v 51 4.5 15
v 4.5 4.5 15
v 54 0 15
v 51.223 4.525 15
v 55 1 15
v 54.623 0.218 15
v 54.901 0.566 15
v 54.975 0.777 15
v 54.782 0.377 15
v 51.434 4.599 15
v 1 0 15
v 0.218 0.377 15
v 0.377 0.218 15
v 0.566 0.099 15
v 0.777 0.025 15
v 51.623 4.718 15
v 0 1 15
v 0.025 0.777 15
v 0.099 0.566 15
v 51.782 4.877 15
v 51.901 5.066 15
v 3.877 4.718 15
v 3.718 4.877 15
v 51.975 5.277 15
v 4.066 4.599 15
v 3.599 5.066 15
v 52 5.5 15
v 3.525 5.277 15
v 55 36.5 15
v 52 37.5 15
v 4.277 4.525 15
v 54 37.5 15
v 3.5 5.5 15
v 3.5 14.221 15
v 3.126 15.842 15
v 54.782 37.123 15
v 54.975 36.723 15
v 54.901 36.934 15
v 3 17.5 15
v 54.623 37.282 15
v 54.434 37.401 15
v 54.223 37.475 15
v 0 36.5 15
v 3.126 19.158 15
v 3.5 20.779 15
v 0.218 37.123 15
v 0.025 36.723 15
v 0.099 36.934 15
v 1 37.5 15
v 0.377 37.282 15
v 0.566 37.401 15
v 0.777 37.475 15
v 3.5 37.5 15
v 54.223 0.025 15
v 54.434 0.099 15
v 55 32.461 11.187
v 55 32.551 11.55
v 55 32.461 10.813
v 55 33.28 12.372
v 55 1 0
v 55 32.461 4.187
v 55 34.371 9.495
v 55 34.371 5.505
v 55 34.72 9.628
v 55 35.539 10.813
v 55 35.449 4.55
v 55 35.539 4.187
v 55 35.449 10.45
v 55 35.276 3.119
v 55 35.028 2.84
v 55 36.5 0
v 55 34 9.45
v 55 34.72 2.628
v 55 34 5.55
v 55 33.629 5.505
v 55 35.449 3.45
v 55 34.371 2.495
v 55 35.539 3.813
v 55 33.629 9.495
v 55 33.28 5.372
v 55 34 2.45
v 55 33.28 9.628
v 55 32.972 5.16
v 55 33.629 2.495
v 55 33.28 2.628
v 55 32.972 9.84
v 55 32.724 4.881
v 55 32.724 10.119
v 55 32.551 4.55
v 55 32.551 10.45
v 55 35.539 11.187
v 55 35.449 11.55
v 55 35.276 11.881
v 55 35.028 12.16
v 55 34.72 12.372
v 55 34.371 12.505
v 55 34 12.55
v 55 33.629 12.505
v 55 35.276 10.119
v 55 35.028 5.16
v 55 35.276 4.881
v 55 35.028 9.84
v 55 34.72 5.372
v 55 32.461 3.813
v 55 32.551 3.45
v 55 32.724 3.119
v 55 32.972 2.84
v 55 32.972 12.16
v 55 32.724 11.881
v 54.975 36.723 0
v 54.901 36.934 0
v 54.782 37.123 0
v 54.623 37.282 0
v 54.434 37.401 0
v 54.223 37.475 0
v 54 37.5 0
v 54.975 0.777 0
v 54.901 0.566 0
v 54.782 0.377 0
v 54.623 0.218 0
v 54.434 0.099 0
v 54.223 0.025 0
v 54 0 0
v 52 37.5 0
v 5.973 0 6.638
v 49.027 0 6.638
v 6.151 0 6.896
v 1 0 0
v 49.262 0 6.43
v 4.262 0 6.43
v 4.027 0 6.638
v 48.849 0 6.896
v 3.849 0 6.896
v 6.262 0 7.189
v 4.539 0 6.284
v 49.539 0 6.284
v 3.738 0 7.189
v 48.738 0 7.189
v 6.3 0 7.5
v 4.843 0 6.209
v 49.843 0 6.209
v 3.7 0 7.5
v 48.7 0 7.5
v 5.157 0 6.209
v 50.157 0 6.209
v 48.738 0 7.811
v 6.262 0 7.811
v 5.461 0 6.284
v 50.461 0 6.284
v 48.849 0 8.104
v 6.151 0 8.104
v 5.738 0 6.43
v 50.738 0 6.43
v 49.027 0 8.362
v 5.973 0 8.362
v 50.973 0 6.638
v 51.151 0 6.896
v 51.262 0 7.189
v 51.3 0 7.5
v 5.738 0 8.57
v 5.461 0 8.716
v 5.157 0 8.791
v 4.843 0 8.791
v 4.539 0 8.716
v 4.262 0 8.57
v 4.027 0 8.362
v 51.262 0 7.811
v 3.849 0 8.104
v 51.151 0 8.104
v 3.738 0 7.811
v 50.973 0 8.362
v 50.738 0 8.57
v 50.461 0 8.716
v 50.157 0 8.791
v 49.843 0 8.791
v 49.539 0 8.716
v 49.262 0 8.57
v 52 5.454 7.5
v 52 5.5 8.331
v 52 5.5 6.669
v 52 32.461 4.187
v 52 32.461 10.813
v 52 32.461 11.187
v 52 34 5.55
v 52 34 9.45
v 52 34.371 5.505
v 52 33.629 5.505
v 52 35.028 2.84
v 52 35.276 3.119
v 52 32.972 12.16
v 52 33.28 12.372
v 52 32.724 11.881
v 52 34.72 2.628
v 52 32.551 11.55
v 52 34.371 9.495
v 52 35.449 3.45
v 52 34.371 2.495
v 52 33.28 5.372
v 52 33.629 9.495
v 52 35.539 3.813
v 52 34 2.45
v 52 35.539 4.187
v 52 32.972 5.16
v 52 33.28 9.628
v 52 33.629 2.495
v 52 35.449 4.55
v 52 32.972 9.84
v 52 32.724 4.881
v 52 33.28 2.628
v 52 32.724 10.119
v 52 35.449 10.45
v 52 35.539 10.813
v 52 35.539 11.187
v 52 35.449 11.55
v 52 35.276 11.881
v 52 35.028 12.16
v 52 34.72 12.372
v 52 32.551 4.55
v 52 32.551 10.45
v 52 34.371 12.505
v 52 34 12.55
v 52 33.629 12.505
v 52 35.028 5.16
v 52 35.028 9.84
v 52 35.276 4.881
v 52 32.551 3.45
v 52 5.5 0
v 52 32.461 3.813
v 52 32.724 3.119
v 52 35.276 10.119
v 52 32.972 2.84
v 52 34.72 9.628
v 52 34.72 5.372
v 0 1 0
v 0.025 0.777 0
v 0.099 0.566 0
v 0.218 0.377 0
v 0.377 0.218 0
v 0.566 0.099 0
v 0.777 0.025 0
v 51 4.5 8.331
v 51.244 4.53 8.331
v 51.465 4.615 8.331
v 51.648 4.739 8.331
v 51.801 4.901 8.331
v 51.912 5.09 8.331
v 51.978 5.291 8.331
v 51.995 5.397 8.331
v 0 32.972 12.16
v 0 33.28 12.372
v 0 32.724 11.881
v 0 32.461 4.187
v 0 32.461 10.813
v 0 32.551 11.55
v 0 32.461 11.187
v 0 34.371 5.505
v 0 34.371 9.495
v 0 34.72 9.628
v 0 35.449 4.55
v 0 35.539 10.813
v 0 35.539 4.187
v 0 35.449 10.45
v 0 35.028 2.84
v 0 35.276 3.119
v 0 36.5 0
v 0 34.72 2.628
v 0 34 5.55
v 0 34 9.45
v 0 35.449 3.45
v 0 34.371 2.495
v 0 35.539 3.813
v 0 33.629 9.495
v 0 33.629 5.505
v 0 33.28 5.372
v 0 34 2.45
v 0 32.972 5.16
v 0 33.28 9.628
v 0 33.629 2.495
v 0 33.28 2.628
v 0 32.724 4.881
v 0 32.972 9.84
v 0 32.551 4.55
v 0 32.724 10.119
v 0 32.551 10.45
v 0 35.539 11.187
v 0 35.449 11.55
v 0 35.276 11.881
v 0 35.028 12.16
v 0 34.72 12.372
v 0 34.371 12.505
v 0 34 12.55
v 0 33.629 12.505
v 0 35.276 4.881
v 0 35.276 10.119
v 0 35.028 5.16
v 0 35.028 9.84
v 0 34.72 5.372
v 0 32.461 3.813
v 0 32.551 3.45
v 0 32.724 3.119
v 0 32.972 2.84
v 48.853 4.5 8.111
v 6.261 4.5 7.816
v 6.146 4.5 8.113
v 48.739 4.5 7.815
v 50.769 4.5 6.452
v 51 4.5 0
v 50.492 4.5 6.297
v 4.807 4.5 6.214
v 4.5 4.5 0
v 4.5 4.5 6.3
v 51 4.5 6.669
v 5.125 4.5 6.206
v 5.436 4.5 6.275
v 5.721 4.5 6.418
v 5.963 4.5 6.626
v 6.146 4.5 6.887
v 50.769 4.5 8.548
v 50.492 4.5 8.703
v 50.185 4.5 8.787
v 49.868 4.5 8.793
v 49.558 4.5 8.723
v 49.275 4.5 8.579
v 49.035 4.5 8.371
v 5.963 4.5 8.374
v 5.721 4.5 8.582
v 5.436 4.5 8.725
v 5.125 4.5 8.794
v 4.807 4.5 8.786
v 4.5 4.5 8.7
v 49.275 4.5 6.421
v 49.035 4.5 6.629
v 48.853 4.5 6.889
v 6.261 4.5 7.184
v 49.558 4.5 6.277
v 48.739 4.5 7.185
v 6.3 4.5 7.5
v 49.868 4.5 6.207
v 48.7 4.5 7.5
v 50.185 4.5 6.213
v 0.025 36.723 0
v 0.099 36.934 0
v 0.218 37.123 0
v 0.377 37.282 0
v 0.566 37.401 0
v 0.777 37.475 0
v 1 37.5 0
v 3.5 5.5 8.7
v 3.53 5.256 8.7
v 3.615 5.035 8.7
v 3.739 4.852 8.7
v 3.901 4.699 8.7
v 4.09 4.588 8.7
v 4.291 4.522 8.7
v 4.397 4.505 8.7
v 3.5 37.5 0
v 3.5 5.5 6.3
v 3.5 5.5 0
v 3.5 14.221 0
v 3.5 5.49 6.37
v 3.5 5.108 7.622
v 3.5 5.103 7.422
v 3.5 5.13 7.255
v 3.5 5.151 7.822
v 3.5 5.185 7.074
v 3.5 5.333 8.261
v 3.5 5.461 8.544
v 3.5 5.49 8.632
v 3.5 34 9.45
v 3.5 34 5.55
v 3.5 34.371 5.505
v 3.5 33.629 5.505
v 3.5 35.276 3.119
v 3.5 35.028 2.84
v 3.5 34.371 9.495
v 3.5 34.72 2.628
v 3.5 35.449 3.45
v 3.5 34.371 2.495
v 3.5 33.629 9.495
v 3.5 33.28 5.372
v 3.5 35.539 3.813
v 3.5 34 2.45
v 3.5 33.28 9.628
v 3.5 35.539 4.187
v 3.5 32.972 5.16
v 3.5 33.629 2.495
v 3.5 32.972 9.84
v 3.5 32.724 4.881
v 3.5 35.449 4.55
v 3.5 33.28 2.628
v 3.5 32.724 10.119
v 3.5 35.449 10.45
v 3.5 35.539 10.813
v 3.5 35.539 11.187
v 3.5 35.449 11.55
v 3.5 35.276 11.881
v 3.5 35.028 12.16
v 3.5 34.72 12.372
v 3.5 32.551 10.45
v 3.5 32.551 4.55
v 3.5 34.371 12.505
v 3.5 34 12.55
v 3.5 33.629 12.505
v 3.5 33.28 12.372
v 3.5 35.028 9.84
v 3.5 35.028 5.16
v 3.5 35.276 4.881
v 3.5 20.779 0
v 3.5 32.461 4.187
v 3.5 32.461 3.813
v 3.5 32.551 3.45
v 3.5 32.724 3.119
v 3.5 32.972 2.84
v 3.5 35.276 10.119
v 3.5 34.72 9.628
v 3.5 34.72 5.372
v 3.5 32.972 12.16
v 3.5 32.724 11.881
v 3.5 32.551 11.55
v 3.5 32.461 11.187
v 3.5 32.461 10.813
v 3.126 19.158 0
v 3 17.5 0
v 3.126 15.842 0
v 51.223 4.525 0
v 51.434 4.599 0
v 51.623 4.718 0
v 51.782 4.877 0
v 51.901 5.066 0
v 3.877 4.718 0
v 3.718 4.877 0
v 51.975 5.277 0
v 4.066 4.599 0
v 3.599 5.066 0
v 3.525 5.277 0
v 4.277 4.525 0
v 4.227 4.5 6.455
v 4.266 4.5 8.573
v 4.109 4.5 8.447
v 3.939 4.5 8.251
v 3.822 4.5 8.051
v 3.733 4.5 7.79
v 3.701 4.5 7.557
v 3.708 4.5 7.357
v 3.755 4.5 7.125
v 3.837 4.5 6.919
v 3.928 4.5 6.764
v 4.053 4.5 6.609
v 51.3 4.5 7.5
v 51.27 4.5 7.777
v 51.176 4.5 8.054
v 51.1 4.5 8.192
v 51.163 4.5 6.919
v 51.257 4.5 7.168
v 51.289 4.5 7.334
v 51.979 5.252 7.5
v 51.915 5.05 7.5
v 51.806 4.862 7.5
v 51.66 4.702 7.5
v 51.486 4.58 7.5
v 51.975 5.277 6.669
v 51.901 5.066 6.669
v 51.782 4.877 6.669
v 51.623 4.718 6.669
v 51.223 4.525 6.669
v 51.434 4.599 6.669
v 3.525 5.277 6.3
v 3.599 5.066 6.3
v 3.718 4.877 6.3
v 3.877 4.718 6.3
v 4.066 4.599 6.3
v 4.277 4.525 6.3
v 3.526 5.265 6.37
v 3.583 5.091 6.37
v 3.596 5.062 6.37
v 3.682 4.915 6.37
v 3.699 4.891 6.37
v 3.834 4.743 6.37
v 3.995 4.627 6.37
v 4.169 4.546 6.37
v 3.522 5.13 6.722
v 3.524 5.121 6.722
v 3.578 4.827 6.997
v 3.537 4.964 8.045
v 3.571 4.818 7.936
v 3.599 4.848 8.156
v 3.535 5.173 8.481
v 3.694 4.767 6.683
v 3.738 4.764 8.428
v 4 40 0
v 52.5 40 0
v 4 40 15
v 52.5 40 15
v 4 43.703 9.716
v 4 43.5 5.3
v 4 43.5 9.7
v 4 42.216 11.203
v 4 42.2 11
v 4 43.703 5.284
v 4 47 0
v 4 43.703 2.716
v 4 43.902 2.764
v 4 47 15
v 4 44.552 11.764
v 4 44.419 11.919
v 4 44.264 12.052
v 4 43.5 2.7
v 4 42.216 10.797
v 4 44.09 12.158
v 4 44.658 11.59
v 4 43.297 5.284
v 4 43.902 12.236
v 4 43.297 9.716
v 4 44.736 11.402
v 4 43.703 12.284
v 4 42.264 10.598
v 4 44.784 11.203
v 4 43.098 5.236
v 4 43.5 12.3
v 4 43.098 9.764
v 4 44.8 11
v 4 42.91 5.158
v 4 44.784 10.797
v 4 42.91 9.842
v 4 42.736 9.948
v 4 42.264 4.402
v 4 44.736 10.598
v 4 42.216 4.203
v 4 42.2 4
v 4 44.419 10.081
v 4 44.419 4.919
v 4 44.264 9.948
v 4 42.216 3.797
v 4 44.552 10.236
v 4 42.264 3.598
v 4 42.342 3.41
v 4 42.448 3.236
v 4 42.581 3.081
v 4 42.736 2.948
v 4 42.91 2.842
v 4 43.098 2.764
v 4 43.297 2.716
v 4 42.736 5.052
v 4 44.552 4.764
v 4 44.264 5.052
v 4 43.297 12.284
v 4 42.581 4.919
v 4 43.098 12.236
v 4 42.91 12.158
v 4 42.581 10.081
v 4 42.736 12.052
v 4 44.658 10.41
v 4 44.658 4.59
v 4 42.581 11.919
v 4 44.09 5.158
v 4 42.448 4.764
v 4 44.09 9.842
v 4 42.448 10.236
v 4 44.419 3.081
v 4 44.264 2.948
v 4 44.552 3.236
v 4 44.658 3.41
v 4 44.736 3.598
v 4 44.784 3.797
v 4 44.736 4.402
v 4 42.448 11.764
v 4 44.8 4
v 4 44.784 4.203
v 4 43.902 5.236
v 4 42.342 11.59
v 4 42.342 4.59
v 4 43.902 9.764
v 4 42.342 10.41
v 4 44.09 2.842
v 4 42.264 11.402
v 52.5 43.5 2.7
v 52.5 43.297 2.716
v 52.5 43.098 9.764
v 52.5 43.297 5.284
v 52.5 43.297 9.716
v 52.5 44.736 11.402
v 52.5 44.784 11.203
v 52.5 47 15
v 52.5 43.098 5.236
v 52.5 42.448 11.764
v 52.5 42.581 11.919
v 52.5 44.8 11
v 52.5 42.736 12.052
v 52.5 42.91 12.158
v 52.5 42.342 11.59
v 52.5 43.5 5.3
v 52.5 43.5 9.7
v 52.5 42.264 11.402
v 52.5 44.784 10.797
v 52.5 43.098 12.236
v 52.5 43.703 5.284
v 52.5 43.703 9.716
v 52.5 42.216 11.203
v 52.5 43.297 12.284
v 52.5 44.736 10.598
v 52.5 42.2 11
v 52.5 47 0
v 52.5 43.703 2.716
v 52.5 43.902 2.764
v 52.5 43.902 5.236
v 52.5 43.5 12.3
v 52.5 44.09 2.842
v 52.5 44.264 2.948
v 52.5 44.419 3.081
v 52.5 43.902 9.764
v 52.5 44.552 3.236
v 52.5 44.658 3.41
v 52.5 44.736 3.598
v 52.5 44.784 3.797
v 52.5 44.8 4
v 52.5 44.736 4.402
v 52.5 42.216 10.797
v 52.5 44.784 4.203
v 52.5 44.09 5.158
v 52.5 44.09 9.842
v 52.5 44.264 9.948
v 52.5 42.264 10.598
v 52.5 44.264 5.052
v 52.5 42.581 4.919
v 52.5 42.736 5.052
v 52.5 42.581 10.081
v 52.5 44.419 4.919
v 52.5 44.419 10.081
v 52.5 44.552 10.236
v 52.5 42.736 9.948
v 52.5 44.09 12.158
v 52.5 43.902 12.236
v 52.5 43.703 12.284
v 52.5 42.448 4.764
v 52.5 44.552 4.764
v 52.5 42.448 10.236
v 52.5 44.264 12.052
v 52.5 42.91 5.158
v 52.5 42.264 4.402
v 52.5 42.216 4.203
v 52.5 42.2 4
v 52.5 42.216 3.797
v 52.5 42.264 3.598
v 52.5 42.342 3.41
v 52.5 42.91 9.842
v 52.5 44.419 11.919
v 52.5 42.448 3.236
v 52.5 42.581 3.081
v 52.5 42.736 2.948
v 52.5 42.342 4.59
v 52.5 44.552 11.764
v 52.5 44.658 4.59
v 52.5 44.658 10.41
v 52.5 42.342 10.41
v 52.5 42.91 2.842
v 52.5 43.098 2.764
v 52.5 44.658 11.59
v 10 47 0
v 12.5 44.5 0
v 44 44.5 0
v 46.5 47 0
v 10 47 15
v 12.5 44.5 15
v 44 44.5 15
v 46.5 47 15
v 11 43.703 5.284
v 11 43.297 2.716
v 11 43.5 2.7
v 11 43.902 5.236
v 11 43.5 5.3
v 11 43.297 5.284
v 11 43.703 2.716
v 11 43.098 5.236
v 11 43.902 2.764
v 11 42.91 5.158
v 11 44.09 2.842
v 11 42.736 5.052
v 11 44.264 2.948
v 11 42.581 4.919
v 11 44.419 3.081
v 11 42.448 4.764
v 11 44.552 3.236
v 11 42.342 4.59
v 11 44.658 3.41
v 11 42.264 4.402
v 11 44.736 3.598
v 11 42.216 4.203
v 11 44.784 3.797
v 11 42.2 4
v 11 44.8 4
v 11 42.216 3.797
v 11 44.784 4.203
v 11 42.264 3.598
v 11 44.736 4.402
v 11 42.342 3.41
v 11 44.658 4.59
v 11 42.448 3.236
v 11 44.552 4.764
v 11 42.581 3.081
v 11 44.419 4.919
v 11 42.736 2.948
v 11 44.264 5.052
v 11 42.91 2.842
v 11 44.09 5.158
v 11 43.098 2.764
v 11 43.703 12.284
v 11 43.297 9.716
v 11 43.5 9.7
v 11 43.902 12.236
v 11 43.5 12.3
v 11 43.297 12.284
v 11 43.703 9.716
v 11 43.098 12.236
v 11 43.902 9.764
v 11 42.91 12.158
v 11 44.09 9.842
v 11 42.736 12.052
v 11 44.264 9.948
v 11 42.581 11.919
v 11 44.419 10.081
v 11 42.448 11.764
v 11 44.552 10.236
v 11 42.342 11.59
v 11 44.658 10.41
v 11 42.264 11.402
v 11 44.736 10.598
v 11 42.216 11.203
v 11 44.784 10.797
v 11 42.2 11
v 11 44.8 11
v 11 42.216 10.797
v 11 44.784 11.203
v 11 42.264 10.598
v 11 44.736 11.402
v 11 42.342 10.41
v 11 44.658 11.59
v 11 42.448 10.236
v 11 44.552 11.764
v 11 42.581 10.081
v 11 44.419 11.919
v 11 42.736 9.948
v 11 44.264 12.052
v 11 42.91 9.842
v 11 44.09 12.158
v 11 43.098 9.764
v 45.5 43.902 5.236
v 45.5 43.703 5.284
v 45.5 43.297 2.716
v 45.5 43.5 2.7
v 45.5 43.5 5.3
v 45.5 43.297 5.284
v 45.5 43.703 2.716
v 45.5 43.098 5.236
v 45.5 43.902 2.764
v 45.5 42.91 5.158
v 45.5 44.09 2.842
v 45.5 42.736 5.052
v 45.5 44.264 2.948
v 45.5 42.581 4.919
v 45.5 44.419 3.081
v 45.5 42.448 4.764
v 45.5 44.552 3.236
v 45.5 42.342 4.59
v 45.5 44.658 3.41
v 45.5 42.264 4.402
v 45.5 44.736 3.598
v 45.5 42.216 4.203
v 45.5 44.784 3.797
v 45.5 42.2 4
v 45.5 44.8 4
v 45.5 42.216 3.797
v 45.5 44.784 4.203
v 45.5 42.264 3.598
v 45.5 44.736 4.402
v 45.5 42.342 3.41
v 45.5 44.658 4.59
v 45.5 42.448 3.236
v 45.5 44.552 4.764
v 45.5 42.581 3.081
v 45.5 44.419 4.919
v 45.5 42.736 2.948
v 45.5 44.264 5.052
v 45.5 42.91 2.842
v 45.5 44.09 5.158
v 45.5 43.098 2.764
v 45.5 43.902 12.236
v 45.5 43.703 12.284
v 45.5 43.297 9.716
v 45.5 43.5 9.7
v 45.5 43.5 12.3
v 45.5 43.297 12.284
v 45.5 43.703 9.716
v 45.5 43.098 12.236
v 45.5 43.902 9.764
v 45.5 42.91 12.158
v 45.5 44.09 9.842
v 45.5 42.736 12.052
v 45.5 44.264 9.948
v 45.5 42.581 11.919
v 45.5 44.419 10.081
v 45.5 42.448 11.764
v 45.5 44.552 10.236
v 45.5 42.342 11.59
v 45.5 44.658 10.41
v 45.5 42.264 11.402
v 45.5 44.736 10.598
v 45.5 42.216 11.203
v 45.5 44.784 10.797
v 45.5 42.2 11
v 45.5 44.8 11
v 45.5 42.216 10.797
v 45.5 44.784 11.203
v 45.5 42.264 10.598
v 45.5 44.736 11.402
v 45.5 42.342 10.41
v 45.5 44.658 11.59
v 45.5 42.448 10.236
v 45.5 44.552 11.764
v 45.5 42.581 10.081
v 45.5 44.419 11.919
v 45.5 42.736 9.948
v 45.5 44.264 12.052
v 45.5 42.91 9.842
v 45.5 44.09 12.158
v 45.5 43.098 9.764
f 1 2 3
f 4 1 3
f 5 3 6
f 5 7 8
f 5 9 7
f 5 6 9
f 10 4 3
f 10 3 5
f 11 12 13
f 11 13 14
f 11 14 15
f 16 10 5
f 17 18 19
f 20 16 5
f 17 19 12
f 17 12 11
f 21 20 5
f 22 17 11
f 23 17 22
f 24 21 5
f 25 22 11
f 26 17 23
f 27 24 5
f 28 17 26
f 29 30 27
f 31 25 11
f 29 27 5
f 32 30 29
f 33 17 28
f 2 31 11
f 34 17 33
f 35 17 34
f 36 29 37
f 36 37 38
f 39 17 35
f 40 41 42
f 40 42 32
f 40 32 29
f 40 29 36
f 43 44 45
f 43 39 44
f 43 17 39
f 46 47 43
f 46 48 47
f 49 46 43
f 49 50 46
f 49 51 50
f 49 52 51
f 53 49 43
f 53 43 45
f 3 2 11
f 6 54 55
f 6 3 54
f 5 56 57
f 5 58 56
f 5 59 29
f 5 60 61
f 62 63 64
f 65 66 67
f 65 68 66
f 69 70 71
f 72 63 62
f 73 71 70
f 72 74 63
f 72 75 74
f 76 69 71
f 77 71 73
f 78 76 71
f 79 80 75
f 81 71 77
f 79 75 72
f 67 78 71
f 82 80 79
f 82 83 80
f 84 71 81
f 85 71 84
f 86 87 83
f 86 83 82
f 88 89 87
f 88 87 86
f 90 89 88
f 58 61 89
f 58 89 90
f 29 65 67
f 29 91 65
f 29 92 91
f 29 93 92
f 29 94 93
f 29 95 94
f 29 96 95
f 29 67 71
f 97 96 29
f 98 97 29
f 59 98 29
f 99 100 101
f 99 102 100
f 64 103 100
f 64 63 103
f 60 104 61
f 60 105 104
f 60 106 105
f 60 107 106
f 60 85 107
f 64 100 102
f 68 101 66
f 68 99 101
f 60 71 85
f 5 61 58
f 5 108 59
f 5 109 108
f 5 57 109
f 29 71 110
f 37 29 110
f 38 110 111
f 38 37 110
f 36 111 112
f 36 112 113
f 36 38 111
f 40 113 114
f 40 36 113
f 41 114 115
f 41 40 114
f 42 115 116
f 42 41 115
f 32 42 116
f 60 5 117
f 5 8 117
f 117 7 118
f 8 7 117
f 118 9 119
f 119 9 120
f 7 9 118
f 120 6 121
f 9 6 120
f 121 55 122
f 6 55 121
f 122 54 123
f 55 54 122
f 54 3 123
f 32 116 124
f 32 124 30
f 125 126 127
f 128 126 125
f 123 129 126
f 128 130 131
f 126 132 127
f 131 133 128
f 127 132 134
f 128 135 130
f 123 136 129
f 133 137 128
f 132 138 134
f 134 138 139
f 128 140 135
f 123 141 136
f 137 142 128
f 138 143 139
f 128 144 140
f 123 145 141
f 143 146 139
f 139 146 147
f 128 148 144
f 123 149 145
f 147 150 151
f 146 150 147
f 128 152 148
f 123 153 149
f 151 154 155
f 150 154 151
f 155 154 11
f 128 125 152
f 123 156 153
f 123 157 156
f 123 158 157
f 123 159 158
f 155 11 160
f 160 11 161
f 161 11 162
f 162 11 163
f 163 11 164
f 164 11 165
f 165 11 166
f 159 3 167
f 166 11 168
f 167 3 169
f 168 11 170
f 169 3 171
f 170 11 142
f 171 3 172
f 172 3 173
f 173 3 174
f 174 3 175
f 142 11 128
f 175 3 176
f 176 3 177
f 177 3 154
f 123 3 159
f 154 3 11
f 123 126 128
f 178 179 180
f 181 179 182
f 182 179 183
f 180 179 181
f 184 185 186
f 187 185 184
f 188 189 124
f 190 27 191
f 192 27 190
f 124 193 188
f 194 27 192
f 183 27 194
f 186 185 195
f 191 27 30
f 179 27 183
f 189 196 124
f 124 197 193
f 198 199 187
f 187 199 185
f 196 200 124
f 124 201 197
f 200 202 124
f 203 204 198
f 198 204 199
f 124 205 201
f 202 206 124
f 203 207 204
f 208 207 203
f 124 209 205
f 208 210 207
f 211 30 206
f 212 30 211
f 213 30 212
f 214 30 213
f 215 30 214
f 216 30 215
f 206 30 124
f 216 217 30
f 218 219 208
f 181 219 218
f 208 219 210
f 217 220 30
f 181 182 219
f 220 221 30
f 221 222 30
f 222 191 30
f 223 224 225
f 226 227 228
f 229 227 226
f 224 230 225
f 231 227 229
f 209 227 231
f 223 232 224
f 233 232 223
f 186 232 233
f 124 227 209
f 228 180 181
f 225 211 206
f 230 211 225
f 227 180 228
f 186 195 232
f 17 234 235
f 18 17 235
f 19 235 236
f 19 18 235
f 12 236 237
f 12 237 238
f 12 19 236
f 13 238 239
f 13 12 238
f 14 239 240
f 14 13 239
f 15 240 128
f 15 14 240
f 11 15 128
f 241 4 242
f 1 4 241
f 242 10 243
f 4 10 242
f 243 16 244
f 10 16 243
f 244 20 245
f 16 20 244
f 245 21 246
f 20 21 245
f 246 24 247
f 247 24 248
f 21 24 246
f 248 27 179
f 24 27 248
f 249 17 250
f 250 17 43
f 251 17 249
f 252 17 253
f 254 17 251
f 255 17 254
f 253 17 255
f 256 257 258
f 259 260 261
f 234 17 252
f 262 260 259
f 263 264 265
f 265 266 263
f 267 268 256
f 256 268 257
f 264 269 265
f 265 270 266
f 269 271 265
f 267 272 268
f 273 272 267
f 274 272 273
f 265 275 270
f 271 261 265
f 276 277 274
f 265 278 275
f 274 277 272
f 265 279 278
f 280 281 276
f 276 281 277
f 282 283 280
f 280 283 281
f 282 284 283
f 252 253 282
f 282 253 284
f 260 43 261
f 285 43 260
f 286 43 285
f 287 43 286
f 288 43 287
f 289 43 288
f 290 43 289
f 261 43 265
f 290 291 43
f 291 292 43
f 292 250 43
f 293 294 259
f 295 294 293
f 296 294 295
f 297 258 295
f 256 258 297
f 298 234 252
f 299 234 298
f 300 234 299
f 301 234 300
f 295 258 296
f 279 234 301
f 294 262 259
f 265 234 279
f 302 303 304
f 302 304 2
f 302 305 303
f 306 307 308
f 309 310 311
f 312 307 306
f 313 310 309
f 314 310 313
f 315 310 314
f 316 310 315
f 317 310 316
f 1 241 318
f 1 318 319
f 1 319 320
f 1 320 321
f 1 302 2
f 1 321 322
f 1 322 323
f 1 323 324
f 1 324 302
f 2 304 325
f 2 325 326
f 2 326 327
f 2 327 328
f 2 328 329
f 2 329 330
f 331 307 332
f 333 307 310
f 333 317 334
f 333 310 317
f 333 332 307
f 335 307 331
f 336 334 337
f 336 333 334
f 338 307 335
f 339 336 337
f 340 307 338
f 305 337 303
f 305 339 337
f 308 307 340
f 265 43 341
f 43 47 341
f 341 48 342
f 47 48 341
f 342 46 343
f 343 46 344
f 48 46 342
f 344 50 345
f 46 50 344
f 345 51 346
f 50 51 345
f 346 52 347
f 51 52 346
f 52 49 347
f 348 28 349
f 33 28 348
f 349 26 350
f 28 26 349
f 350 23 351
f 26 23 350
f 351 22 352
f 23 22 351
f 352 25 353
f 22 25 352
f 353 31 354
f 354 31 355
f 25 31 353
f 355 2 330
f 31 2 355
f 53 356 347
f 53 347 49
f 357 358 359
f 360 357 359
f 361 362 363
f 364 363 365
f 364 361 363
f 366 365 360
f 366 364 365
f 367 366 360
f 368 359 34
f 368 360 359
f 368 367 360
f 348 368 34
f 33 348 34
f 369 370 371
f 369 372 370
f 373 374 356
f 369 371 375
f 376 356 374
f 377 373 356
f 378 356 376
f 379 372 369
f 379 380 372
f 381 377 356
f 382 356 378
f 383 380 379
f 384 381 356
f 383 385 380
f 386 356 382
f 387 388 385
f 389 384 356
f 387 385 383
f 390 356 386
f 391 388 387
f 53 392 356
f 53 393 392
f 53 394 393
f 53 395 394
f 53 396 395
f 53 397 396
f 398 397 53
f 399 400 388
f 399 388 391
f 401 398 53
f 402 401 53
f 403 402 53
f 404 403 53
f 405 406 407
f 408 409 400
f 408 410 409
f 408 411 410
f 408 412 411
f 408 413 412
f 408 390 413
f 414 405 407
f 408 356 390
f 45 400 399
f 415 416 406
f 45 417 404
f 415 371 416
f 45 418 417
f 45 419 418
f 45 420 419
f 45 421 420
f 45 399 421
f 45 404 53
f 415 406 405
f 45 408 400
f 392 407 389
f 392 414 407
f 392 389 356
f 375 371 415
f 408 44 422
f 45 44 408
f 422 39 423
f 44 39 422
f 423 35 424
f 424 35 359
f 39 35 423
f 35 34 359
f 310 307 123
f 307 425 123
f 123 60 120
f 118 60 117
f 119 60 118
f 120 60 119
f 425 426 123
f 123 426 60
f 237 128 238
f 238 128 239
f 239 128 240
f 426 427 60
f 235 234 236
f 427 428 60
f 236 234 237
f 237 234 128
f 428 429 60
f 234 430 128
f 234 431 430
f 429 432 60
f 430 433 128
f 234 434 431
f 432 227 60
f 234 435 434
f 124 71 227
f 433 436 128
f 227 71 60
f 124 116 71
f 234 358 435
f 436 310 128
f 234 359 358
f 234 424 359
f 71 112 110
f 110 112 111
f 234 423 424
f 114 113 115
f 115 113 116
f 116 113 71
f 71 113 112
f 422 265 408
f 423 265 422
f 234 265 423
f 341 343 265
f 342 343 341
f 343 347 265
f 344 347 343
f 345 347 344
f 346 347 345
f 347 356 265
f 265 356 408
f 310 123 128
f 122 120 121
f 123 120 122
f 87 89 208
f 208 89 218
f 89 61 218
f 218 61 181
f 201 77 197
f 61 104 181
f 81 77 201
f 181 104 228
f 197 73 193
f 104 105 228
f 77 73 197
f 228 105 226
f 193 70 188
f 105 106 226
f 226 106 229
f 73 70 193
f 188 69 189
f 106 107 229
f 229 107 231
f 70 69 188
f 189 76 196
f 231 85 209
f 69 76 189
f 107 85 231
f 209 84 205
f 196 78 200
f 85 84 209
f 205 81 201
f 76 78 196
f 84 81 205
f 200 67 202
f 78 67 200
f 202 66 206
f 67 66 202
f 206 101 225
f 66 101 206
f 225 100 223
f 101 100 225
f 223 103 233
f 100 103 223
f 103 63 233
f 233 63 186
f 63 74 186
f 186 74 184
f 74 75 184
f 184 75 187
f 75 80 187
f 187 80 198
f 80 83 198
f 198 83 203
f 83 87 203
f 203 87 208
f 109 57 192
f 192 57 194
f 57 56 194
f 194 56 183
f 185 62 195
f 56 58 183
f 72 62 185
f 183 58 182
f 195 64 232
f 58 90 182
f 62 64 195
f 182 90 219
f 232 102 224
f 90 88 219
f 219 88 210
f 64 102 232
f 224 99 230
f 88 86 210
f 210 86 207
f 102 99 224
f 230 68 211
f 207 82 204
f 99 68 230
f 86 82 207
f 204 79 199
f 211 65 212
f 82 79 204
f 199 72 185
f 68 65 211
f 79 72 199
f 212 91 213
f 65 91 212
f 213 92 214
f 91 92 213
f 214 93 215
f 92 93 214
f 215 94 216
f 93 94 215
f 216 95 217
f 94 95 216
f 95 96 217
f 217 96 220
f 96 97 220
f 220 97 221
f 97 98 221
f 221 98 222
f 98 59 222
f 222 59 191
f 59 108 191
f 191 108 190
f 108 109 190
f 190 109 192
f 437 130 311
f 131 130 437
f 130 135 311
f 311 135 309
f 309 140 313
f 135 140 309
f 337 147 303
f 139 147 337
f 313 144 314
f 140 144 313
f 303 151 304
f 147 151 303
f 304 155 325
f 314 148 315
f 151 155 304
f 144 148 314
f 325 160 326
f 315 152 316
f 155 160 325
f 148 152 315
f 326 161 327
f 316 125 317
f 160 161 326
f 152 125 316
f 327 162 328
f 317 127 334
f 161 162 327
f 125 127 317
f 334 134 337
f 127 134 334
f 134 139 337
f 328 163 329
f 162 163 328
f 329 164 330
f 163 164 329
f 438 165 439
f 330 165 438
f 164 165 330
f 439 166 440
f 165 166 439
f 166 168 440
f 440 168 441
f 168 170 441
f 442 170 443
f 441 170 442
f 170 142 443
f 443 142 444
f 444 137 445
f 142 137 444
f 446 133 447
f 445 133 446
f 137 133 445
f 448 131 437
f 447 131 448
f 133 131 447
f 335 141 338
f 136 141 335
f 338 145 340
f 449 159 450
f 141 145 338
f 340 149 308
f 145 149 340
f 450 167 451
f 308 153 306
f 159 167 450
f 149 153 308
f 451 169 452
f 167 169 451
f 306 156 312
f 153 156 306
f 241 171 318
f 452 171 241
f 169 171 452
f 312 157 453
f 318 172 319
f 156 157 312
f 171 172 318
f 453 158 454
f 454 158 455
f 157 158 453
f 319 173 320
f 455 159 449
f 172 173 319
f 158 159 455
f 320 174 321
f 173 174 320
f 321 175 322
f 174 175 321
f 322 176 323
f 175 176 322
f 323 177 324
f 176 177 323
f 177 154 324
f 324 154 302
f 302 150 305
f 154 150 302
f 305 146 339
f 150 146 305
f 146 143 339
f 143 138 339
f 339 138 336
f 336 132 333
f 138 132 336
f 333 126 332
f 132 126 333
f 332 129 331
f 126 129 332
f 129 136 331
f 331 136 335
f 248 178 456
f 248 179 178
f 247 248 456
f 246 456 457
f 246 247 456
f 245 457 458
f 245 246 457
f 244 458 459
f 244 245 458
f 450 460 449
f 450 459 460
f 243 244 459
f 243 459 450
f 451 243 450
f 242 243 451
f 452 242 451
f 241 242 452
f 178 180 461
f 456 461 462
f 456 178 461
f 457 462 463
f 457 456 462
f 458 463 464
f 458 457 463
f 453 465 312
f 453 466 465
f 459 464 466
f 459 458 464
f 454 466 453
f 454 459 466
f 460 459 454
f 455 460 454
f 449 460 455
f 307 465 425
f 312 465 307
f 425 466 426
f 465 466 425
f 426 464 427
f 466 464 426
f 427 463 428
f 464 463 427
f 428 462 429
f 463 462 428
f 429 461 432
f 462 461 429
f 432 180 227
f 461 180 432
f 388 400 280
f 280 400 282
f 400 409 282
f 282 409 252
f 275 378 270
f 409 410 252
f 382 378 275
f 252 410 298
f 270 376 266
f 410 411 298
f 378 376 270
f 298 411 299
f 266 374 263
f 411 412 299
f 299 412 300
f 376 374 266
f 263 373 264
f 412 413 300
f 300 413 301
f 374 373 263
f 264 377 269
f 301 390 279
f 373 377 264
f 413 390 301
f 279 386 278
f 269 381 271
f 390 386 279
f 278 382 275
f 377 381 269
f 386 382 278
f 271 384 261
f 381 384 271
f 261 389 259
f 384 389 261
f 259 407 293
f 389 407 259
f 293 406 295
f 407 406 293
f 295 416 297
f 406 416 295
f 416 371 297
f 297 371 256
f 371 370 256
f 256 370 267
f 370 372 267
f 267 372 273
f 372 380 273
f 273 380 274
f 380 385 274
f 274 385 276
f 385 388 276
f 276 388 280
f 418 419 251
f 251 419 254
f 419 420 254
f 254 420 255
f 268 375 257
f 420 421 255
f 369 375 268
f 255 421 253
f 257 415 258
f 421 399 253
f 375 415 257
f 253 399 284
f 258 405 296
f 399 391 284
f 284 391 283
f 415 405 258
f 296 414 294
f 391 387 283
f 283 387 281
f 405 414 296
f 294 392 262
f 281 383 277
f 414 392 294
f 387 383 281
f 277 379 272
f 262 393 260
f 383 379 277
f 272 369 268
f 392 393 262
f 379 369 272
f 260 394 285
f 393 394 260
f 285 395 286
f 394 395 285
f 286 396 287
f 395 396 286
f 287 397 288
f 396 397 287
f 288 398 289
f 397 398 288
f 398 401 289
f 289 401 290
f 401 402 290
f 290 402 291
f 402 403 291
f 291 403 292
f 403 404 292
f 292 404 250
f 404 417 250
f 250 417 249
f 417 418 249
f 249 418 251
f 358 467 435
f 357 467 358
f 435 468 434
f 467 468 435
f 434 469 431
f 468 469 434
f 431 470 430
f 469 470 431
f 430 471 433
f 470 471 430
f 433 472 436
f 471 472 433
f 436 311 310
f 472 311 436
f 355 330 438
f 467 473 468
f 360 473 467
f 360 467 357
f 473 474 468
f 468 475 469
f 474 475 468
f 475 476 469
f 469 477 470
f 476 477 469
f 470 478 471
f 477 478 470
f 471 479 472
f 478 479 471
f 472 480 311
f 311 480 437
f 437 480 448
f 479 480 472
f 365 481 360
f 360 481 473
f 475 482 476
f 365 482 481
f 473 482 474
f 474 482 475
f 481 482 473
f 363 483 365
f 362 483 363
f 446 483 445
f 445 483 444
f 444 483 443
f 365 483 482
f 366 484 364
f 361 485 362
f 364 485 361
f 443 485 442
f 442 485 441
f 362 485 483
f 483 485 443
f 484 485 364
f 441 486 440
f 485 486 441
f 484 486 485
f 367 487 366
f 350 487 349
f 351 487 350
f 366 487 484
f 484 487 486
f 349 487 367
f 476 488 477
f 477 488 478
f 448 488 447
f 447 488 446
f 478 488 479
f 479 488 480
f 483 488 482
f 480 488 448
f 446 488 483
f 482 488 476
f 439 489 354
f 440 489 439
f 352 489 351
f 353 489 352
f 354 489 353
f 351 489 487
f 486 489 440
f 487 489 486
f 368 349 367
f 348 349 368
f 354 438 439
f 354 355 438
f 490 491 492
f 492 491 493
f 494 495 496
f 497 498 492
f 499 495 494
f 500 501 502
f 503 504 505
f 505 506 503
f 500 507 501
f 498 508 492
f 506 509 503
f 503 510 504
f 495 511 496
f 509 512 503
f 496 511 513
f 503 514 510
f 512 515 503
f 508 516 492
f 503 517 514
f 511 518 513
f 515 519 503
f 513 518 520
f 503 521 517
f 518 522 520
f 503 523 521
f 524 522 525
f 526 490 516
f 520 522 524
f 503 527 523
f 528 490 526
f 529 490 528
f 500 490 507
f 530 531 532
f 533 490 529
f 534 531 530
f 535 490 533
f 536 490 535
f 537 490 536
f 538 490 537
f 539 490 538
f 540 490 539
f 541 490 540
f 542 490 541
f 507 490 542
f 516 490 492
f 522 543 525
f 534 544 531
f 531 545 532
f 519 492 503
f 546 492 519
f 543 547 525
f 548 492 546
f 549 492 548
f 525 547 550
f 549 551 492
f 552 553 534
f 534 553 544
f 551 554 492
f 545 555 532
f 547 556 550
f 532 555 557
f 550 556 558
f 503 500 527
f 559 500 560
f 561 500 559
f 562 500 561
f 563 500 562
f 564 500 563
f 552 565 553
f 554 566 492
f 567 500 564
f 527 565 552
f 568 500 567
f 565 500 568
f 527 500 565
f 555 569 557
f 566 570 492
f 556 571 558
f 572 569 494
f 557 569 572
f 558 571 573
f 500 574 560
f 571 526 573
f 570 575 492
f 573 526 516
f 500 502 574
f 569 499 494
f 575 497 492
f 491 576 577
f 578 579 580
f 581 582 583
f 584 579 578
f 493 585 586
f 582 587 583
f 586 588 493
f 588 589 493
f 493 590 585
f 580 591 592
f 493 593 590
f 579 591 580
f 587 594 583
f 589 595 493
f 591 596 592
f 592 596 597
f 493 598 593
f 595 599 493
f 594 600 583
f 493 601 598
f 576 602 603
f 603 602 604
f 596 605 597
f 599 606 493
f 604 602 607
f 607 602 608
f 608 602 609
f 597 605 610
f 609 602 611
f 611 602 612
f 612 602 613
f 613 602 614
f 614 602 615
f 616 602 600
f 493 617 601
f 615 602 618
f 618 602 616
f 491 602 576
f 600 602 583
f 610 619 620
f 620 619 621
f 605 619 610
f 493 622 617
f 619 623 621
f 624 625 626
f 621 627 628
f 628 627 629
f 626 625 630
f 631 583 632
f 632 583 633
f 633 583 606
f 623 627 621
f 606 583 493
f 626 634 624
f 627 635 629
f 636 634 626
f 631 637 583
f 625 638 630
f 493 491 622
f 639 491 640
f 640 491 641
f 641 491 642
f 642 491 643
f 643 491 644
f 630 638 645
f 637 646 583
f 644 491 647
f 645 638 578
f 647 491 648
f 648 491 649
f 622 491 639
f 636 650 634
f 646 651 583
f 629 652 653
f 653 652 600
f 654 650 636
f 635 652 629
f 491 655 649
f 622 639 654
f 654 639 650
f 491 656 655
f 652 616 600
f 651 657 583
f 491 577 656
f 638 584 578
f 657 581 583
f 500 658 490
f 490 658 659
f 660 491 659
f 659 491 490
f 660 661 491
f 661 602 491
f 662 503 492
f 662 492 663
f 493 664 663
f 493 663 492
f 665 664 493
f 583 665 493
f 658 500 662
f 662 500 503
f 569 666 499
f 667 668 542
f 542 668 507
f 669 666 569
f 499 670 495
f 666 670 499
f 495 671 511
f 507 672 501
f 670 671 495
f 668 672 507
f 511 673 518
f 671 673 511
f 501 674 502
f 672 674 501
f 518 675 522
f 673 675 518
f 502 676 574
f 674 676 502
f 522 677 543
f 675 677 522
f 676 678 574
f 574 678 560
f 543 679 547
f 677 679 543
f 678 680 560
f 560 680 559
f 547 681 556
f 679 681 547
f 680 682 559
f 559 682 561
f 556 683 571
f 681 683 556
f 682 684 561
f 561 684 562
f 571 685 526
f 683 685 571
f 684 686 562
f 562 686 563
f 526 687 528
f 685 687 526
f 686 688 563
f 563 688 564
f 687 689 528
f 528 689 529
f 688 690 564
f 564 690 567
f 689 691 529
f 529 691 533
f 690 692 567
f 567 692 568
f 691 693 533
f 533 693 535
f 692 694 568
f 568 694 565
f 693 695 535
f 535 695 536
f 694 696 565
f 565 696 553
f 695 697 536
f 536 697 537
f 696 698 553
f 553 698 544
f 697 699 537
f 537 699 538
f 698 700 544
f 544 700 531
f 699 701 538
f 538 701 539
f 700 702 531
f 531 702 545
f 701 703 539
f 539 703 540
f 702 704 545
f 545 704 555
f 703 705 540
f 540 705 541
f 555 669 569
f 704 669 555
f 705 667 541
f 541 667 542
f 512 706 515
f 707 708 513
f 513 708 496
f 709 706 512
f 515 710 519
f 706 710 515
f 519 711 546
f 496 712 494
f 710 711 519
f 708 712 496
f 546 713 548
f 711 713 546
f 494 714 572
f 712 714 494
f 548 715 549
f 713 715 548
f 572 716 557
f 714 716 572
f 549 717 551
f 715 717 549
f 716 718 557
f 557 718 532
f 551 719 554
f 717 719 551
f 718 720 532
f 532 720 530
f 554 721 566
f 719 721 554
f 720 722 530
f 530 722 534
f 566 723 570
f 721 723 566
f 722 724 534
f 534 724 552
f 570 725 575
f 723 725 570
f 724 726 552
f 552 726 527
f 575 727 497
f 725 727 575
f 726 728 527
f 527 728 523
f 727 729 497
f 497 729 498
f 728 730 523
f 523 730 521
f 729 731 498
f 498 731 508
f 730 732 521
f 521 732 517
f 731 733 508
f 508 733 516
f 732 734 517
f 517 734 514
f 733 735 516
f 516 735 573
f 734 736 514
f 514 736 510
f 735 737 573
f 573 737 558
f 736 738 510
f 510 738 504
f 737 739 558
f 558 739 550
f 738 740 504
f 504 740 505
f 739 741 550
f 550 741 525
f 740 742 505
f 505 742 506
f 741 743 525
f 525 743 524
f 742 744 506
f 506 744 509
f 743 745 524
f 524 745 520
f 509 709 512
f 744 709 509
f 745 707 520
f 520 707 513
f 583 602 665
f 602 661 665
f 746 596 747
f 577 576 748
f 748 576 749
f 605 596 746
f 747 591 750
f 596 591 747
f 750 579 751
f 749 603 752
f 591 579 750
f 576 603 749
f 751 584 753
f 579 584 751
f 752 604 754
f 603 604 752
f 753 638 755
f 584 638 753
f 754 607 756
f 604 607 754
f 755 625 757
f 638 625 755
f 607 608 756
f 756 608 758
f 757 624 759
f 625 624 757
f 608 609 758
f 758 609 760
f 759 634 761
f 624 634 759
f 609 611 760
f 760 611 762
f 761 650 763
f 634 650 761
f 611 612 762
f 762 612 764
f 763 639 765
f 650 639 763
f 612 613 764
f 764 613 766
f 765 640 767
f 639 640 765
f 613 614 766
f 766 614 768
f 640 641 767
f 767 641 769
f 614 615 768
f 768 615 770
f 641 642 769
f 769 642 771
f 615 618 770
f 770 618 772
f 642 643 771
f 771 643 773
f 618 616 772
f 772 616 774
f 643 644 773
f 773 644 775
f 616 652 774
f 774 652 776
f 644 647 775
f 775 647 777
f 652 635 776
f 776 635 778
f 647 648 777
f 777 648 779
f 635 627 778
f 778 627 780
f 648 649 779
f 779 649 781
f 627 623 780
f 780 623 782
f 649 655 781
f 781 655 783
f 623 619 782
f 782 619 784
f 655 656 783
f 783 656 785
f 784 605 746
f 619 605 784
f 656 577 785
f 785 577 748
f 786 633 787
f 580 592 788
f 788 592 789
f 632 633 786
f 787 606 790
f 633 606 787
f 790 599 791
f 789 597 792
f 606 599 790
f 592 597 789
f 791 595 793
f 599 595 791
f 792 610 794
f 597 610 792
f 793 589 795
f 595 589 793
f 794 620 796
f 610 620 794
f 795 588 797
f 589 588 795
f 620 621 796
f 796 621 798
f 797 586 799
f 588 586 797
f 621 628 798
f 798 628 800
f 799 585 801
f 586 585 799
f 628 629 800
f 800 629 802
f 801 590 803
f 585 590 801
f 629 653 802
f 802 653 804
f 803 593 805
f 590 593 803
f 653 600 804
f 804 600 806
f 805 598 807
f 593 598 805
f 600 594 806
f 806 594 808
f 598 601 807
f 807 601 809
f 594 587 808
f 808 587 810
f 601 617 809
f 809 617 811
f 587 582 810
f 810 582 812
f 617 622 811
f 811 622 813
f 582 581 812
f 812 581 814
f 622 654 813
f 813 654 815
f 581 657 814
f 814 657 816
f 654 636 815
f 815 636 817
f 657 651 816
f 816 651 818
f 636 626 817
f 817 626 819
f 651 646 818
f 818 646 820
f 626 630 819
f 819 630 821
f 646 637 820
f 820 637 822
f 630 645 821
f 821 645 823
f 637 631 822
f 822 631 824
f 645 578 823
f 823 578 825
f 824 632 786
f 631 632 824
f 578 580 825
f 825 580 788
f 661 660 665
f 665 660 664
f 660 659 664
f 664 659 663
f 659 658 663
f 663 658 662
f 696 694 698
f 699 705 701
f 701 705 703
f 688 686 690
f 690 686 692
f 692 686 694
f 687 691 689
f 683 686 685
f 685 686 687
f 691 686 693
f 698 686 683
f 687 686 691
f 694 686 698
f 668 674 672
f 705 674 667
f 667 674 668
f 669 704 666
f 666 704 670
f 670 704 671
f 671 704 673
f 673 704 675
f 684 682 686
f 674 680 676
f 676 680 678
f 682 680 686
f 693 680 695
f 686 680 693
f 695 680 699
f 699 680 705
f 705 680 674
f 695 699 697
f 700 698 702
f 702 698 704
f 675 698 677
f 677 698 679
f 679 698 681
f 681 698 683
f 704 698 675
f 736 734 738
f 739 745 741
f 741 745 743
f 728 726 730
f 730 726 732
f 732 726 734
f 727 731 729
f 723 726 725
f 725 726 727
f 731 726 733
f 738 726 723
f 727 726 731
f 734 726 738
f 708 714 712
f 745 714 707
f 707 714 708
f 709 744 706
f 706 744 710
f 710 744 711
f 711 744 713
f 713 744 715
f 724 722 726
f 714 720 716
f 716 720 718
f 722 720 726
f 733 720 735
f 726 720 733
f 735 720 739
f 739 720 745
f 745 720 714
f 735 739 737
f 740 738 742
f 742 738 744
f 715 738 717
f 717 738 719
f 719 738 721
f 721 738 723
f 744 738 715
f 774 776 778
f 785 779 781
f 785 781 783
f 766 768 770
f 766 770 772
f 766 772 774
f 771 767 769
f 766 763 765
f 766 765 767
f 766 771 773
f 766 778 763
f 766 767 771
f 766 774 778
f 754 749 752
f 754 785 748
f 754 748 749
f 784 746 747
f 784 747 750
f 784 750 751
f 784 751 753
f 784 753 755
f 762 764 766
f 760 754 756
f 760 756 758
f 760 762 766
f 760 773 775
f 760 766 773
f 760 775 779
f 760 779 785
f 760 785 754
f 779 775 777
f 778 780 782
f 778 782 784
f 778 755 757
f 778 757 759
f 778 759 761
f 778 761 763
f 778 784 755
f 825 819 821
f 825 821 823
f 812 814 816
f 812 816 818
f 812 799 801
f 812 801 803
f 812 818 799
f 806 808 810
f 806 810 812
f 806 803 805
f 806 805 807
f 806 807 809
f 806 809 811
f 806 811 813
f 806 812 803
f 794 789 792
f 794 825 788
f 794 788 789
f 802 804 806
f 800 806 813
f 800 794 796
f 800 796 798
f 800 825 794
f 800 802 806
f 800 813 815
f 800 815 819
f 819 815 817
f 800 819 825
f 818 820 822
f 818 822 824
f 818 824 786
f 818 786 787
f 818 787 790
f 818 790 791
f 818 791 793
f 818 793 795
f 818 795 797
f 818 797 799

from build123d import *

# Parameters (mm, degrees)
CYLINDER004_R           = 1.55
CYLINDER004_DEPTH       = 60
CYLINDER004_PITCH_ANGLE = 90
CYLINDER003_R           = 1.55
CYLINDER003_DEPTH       = 60
CYLINDER003_PITCH_ANGLE = 90
CYLINDER002_R           = 1.3
CYLINDER002_DEPTH       = 10
CYLINDER002_ROLL_ANGLE  = 90
CYLINDER001_R           = 1.3
CYLINDER001_DEPTH       = 10
CYLINDER001_ROLL_ANGLE  = 90
CYLINDER_R              = 11
CYLINDER_DEPTH          = 15
BOX001_W                = 48.5
BOX001_H                = 33
BOX001_DEPTH            = 15
BOX_W                   = 55
BOX_H                   = 37.5
BOX_DEPTH               = 15
FILLET_R                = 1
FILLET001_R             = 1
FILLET002_R             = 1
FILLET003_R             = 1
FILLET004_R             = 1
FILLET005_R             = 1
CYLINDER008_R           = 1.3
CYLINDER008_DEPTH       = 7
CYLINDER008_PITCH_ANGLE = 90
CYLINDER007_R           = 1.3
CYLINDER007_DEPTH       = 7
CYLINDER007_PITCH_ANGLE = 90
CYLINDER006_R           = 1.3
CYLINDER006_DEPTH       = 7
CYLINDER006_PITCH_ANGLE = 90
CYLINDER005_R           = 1.3
CYLINDER005_DEPTH       = 7
CYLINDER005_PITCH_ANGLE = 90
PAD_DEPTH               = 15


with BuildPart() as cylinder004:
    # Cylinder004 → Cylinder004 (new body)
    with BuildSketch(Plane.XY):
        Circle(CYLINDER004_R)
    extrude(amount=CYLINDER004_DEPTH)


with BuildPart() as cylinder004_1:
    # Cylinder004 pitch: moved
    add(cylinder004.part.rotate(Axis((0, 0, 0), (0, 1, 0)), CYLINDER004_PITCH_ANGLE))


with BuildPart() as cylinder004_2:
    # Cylinder004 placement: moved
    add(cylinder004_1.part.moved(Location((0, 34, 11))))


with BuildPart() as cylinder003:
    # Cylinder003 → Cylinder003 (new body)
    with BuildSketch(Plane.XY):
        Circle(CYLINDER003_R)
    extrude(amount=CYLINDER003_DEPTH)


with BuildPart() as cylinder003_1:
    # Cylinder003 pitch: moved
    add(cylinder003.part.rotate(Axis((0, 0, 0), (0, 1, 0)), CYLINDER003_PITCH_ANGLE))


with BuildPart() as cylinder003_2:
    # Cylinder003 placement: moved
    add(cylinder003_1.part.moved(Location((0, 34, 4))))


with BuildPart() as cylinder002:
    # Cylinder002 → Cylinder002 (new body)
    with BuildSketch(Plane.XY):
        Circle(CYLINDER002_R)
    extrude(amount=CYLINDER002_DEPTH)


with BuildPart() as cylinder002_1:
    # Cylinder002 roll: moved
    add(cylinder002.part.rotate(Axis((0, 0, 0), (1, 0, 0)), CYLINDER002_ROLL_ANGLE))


with BuildPart() as cylinder002_2:
    # Cylinder002 placement: moved
    add(cylinder002_1.part.moved(Location((50, 8, 7.5))))


with BuildPart() as cylinder001:
    # Cylinder001 → Cylinder001 (new body)
    with BuildSketch(Plane.XY):
        Circle(CYLINDER001_R)
    extrude(amount=CYLINDER001_DEPTH)


with BuildPart() as cylinder001_1:
    # Cylinder001 roll: moved
    add(cylinder001.part.rotate(Axis((0, 0, 0), (1, 0, 0)), CYLINDER001_ROLL_ANGLE))


with BuildPart() as cylinder001_2:
    # Cylinder001 placement: moved
    add(cylinder001_1.part.moved(Location((5, 8, 7.5))))


with BuildPart() as cylinder:
    # Cylinder → Cylinder (new body)
    with BuildSketch(Plane(origin=(14, 17.5, 0), x_dir=(1, 0, 0), z_dir=(0, 0, 1))):
        Circle(CYLINDER_R)
    extrude(amount=CYLINDER_DEPTH)


with BuildPart() as cube001:
    # Box001 → Box001 (new body)
    with BuildSketch(Plane(origin=(3.5, 4.5, 0), x_dir=(1, 0, 0), z_dir=(0, 0, 1))):
        with Locations((24.25, 16.5)):
            Rectangle(BOX001_W, BOX001_H)
    extrude(amount=BOX001_DEPTH)


with BuildPart() as fillet005:
    # Box → Box (new body)
    with BuildSketch(Plane.XY):
        with Locations((27.5, 18.75)):
            Rectangle(BOX_W, BOX_H)
    extrude(amount=BOX_DEPTH)

    # Cut: cut Cube001
    add(cube001.part, mode=Mode.SUBTRACT)

    # Cut001: cut Cylinder
    add(cylinder.part, mode=Mode.SUBTRACT)

    # Cut002: cut Cylinder001
    add(cylinder001_2.part, mode=Mode.SUBTRACT)

    # Cut003: cut Cylinder002
    add(cylinder002_2.part, mode=Mode.SUBTRACT)

    # Cut004: cut Cylinder003
    add(cylinder003_2.part, mode=Mode.SUBTRACT)

    # Cut005: cut Cylinder004
    add(cylinder004_2.part, mode=Mode.SUBTRACT)

    # Fillet
    fillet_edges = [fillet005.edges().sort_by_distance(p)[0] for p in [
        (0, 37.5, 7.5),
    ]]
    fillet(fillet_edges, radius=FILLET_R)

    # Fillet001
    fillet001_edges = [fillet005.edges().sort_by_distance(p)[0] for p in [
        (0, 0, 7.5),
    ]]
    fillet(fillet001_edges, radius=FILLET001_R)

    # Fillet002
    fillet002_edges = [fillet005.edges().sort_by_distance(p)[0] for p in [
        (3.5, 4.5, 7.5),
    ]]
    fillet(fillet002_edges, radius=FILLET002_R)

    # Fillet003
    fillet003_edges = [fillet005.edges().sort_by_distance(p)[0] for p in [
        (52, 4.5, 7.5),
    ]]
    fillet(fillet003_edges, radius=FILLET003_R)

    # Fillet004
    fillet004_edges = [fillet005.edges().sort_by_distance(p)[0] for p in [
        (55, 0, 7.5),
    ]]
    fillet(fillet004_edges, radius=FILLET004_R)

    # Fillet005
    fillet005_edges = [fillet005.edges().sort_by_distance(p)[0] for p in [
        (55, 37.5, 7.5),
    ]]
    fillet(fillet005_edges, radius=FILLET005_R)


with BuildPart() as cylinder008:
    # Cylinder008 → Cylinder008 (new body)
    with BuildSketch(Plane.XY):
        Circle(CYLINDER008_R)
    extrude(amount=CYLINDER008_DEPTH)


with BuildPart() as cylinder008_1:
    # Cylinder008 pitch: moved
    add(cylinder008.part.rotate(Axis((0, 0, 0), (0, 1, 0)), CYLINDER008_PITCH_ANGLE))


with BuildPart() as cylinder008_2:
    # Cylinder008 placement: moved
    add(cylinder008_1.part.moved(Location((45.5, 43.5, 11))))


with BuildPart() as cylinder007:
    # Cylinder007 → Cylinder007 (new body)
    with BuildSketch(Plane.XY):
        Circle(CYLINDER007_R)
    extrude(amount=CYLINDER007_DEPTH)


with BuildPart() as cylinder007_1:
    # Cylinder007 pitch: moved
    add(cylinder007.part.rotate(Axis((0, 0, 0), (0, 1, 0)), CYLINDER007_PITCH_ANGLE))


with BuildPart() as cylinder007_2:
    # Cylinder007 placement: moved
    add(cylinder007_1.part.moved(Location((45.5, 43.5, 4))))


with BuildPart() as cylinder006:
    # Cylinder006 → Cylinder006 (new body)
    with BuildSketch(Plane.XY):
        Circle(CYLINDER006_R)
    extrude(amount=CYLINDER006_DEPTH)


with BuildPart() as cylinder006_1:
    # Cylinder006 pitch: moved
    add(cylinder006.part.rotate(Axis((0, 0, 0), (0, 1, 0)), CYLINDER006_PITCH_ANGLE))


with BuildPart() as cylinder006_2:
    # Cylinder006 placement: moved
    add(cylinder006_1.part.moved(Location((4, 43.5, 11))))


with BuildPart() as cylinder005:
    # Cylinder005 → Cylinder005 (new body)
    with BuildSketch(Plane.XY):
        Circle(CYLINDER005_R)
    extrude(amount=CYLINDER005_DEPTH)


with BuildPart() as cylinder005_1:
    # Cylinder005 pitch: moved
    add(cylinder005.part.rotate(Axis((0, 0, 0), (0, 1, 0)), CYLINDER005_PITCH_ANGLE))


with BuildPart() as cylinder005_2:
    # Cylinder005 placement: moved
    add(cylinder005_1.part.moved(Location((4, 43.5, 4))))


with BuildPart() as cut009:
    # Sketch → Pad (new body)
    with BuildSketch(Plane.XY):
        Polygon((4, 40), (52.5, 40), (52.5, 47), (46.5, 47), (44, 44.5), (12.5, 44.5), (10, 47), (4, 47), align=None)
    extrude(amount=PAD_DEPTH)

    # Cut006: cut Cylinder005
    add(cylinder005_2.part, mode=Mode.SUBTRACT)

    # Cut007: cut Cylinder006
    add(cylinder006_2.part, mode=Mode.SUBTRACT)

    # Cut008: cut Cylinder007
    add(cylinder007_2.part, mode=Mode.SUBTRACT)

    # Cut009: cut Cylinder008
    add(cylinder008_2.part, mode=Mode.SUBTRACT)


solid = Compound([fillet005.part, cut009.part])
